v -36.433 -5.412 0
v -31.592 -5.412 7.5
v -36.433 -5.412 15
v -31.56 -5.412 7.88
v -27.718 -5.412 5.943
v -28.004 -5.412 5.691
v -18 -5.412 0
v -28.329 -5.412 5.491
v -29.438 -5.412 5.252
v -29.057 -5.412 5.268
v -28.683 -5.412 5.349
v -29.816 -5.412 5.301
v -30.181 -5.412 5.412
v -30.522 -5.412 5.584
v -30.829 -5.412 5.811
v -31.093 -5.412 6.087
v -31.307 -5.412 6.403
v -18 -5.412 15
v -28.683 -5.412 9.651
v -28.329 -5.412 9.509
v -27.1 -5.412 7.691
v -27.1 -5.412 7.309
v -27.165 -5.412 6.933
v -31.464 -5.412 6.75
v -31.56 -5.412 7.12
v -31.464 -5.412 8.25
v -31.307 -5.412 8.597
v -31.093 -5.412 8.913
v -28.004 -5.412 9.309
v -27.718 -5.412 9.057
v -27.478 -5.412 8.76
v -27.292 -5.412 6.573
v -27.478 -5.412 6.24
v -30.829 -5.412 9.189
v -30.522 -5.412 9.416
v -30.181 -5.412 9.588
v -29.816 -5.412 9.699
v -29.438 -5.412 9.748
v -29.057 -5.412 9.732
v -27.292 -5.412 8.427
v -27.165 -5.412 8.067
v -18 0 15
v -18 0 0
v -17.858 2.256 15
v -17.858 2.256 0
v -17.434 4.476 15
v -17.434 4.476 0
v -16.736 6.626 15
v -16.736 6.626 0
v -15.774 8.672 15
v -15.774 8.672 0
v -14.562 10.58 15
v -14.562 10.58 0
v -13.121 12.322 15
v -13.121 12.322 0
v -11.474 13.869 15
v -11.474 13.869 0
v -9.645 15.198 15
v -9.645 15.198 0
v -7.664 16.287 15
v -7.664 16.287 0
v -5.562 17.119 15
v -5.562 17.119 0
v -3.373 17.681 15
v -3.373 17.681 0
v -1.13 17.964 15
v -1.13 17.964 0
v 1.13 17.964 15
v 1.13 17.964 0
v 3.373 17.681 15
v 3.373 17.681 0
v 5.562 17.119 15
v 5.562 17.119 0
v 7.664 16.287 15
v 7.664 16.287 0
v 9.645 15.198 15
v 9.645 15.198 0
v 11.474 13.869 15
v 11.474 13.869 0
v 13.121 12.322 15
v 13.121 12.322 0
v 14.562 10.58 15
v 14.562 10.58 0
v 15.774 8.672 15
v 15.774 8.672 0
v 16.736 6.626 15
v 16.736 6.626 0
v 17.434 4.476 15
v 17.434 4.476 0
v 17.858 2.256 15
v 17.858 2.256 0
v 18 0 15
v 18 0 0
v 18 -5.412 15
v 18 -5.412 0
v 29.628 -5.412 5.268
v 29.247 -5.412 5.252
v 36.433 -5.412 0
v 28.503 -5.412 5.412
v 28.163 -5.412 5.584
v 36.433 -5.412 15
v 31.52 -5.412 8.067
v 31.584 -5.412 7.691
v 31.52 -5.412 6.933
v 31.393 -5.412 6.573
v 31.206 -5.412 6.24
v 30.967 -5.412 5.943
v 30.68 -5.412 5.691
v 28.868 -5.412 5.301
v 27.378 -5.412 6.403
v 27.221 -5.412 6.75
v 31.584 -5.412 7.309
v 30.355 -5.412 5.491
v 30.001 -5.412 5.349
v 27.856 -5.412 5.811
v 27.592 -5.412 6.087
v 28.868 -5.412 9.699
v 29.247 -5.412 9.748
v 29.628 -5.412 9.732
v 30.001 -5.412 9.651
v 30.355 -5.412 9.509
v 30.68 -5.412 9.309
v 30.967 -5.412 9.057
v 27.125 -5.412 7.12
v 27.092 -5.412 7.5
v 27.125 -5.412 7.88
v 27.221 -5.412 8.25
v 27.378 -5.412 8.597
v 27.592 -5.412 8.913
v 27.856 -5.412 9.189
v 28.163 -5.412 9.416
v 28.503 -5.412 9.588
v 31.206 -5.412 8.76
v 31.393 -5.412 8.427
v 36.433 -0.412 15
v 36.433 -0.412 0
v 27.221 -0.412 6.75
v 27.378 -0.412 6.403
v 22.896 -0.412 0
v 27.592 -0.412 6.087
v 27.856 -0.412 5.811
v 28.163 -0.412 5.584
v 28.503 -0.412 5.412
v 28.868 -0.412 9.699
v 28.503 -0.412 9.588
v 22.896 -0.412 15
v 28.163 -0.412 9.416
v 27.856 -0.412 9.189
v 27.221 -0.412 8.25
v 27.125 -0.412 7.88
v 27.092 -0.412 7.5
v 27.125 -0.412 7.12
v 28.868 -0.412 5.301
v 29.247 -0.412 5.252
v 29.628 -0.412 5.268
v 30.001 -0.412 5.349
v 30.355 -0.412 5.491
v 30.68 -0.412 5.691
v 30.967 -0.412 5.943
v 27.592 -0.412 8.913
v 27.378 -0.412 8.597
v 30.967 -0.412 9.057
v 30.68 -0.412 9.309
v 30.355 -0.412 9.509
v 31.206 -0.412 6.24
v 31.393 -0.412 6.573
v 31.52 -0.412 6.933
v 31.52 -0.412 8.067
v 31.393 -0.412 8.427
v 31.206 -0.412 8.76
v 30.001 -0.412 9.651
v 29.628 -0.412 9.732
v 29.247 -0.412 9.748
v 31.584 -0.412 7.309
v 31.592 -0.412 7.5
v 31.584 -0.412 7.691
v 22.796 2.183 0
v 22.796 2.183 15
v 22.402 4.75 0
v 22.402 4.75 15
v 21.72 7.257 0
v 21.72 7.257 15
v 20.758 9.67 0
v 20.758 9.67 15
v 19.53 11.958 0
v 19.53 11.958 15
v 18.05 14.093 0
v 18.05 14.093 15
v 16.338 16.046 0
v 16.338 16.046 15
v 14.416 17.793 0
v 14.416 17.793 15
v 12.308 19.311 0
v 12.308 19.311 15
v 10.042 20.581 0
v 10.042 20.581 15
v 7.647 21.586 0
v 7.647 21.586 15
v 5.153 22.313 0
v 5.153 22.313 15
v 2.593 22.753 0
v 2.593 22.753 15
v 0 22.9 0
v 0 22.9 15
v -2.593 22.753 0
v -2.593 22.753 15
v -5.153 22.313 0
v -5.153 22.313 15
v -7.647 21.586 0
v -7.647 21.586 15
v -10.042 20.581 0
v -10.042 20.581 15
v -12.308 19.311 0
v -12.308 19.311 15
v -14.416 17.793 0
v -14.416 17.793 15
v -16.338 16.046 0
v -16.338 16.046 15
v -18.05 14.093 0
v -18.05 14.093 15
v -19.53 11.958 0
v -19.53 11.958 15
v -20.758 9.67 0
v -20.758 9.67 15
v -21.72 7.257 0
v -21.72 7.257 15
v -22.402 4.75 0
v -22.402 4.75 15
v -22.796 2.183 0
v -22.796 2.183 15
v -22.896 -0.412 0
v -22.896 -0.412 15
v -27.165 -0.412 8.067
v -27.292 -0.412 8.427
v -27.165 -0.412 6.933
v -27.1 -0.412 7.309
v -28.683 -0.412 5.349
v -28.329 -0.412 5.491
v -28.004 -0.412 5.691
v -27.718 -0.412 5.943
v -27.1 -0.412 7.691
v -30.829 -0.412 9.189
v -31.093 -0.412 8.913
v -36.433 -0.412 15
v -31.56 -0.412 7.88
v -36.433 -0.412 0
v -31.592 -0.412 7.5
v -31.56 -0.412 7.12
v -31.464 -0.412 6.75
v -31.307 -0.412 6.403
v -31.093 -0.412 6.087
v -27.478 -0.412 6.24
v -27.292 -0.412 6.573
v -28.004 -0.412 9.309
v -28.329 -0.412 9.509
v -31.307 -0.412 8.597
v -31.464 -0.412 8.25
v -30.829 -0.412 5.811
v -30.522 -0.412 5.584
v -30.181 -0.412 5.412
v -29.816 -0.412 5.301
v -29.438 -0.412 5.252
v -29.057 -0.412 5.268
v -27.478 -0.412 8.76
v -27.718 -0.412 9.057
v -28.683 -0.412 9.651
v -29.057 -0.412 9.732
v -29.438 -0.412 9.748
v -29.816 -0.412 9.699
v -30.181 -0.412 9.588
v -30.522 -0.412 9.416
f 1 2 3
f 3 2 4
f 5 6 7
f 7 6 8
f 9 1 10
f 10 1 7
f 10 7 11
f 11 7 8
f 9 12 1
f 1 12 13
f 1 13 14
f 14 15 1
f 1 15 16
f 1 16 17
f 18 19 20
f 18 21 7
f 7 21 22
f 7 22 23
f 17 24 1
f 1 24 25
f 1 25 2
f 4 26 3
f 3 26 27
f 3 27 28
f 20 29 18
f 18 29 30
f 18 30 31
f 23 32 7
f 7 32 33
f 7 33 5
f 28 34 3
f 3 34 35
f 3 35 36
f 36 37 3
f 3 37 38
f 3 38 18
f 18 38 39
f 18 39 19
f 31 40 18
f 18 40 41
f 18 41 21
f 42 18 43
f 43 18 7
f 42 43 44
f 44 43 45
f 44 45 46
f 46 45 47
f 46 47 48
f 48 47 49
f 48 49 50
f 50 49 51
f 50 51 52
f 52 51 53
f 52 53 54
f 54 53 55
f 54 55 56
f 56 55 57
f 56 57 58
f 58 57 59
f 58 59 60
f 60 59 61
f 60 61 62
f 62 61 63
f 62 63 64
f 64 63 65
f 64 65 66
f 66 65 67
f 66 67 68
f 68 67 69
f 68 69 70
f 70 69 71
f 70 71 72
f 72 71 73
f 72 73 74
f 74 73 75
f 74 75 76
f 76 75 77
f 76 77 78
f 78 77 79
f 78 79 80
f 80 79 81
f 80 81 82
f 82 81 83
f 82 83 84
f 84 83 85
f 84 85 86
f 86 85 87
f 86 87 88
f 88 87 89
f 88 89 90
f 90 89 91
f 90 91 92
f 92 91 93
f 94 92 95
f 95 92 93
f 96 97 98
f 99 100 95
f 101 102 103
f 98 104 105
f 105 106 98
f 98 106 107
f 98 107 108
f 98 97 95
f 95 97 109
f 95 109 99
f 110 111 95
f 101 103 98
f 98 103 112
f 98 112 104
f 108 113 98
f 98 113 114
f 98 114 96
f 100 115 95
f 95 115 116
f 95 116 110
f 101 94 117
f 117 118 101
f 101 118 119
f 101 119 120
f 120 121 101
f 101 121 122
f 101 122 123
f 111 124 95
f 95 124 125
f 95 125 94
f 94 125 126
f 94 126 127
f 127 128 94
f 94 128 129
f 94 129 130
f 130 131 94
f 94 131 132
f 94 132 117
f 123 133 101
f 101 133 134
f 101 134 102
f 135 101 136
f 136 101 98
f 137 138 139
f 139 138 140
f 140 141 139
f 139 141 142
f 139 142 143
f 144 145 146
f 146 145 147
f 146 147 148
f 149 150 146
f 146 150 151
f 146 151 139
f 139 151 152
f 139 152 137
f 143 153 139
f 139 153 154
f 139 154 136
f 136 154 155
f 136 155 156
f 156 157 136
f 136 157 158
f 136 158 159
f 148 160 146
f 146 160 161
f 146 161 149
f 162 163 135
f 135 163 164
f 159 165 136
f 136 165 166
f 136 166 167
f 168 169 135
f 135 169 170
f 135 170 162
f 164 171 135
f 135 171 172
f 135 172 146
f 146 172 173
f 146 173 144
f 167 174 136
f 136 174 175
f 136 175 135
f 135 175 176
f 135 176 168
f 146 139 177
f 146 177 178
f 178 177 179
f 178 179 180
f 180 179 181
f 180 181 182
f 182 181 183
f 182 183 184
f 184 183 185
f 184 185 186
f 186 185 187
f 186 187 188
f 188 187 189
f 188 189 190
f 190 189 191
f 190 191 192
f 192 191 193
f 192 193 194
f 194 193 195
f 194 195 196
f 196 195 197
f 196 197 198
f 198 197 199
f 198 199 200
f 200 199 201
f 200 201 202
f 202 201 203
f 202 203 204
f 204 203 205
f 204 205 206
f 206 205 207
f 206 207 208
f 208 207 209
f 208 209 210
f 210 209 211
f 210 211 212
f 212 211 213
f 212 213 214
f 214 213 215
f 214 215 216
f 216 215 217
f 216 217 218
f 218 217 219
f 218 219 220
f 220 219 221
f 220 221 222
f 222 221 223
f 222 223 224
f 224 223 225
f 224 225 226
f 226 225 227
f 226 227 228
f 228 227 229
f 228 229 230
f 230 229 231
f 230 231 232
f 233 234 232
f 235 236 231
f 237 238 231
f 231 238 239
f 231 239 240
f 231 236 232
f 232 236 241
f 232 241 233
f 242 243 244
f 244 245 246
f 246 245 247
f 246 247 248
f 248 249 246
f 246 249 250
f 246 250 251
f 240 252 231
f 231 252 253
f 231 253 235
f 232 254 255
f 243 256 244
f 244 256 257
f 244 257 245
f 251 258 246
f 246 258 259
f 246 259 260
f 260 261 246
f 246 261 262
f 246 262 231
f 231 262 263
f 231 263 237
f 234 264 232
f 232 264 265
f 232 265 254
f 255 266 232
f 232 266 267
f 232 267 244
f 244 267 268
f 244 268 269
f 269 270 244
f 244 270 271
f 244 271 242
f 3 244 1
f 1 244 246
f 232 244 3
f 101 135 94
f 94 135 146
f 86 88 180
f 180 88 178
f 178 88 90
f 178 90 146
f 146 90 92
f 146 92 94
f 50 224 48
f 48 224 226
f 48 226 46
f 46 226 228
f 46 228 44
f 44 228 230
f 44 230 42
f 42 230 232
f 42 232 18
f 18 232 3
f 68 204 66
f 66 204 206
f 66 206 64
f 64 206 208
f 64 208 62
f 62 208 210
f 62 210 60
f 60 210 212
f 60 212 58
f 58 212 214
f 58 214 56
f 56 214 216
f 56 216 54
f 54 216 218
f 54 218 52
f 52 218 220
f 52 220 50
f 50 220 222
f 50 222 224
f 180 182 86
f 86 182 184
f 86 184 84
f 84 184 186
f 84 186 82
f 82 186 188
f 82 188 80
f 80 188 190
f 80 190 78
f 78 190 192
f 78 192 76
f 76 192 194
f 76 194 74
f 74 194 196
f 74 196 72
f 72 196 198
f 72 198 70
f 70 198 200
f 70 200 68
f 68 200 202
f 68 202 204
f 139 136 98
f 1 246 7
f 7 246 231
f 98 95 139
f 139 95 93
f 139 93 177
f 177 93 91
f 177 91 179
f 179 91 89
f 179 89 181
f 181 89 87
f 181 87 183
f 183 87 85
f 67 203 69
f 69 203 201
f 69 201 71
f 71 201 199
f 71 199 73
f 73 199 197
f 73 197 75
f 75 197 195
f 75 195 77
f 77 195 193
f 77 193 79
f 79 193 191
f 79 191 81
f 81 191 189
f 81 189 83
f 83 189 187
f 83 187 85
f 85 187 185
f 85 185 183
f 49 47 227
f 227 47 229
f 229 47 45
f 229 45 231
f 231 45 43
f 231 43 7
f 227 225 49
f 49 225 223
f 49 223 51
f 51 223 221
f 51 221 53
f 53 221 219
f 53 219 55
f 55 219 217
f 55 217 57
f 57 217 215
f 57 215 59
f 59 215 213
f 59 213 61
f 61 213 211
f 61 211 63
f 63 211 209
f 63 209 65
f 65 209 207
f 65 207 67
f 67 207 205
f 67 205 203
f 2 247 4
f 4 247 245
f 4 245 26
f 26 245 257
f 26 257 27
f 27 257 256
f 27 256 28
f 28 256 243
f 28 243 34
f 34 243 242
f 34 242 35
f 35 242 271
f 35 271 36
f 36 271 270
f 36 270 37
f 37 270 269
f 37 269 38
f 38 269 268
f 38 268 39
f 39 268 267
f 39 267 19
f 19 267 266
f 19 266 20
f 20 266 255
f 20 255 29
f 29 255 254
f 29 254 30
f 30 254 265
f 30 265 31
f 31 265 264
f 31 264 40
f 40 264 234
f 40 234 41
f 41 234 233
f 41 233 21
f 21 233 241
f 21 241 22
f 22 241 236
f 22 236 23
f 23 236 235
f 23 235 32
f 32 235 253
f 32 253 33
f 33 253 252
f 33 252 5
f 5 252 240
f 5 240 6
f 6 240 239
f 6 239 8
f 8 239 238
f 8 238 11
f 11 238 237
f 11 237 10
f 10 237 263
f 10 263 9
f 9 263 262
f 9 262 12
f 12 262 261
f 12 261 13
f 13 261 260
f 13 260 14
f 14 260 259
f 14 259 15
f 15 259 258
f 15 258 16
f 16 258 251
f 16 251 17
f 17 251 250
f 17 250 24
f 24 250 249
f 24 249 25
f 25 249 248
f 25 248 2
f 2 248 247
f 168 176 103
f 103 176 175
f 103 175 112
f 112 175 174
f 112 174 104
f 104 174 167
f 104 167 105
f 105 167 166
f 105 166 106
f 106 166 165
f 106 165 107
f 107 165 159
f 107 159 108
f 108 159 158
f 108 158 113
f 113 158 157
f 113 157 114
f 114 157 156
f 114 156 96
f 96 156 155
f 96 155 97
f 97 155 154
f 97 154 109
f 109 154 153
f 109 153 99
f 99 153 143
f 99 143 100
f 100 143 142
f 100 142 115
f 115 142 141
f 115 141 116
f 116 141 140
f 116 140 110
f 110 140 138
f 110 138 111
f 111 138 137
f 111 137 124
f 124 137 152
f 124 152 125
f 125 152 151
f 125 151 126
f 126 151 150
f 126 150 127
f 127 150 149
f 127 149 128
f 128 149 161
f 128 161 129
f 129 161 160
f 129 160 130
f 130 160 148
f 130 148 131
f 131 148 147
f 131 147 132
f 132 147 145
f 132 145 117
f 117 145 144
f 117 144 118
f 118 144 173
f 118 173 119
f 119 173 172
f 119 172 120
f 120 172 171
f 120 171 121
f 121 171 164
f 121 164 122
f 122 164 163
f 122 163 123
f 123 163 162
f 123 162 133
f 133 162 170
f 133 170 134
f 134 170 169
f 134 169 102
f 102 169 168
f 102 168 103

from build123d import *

# Parameters (mm, degrees)
BOSS_EXTRUDE1_DEPTH     = 15
SKETCH5_R               = 2.25
CUT_EXTRUDE1_DEPTH      = 24.3125
CUT_EXTRUDE1_DEPTH_BACK = 6


with BuildPart() as part:
    # Sketch3 → Boss-Extrude1 (new body)
    with BuildSketch(Plane.XY):
        with BuildLine():
            Line((18, 0), (18, -5.4125))
            Line((18, -5.4125), (36.4334, -5.4125))
            Line((36.4334, -5.4125), (36.4334, -0.4125))
            Line((36.4334, -0.4125), (22.896284497, -0.4125))
            ThreePointArc((22.896284497, -0.4125), (0, 22.9), (-22.896284497, -0.4125))
            Line((-22.896284497, -0.4125), (-36.4334, -0.4125))
            Line((-36.4334, -0.4125), (-36.4334, -5.4125))
            Line((-36.4334, -5.4125), (-18, -5.4125))
            Line((-18, -5.4125), (-18, 0))
            ThreePointArc((-18, 0), (0, 18), (18, 0))
        make_face()
    extrude(amount=BOSS_EXTRUDE1_DEPTH)

    # Sketch5 → Cut-Extrude1 (cut, two sides)
    with BuildSketch(Plane(origin=(0, -0.4125, 0), x_dir=(1, 0, 0), z_dir=(0, 1, 0))) as cut_extrude1_sk:
        with Locations((-29.3423, -7.5)):
            Circle(SKETCH5_R)
        with Locations((29.3423, -7.5)):
            Circle(SKETCH5_R)
    extrude(amount=CUT_EXTRUDE1_DEPTH, mode=Mode.SUBTRACT)
    extrude(cut_extrude1_sk.sketch, amount=-CUT_EXTRUDE1_DEPTH_BACK, mode=Mode.SUBTRACT)


solid = part.part
